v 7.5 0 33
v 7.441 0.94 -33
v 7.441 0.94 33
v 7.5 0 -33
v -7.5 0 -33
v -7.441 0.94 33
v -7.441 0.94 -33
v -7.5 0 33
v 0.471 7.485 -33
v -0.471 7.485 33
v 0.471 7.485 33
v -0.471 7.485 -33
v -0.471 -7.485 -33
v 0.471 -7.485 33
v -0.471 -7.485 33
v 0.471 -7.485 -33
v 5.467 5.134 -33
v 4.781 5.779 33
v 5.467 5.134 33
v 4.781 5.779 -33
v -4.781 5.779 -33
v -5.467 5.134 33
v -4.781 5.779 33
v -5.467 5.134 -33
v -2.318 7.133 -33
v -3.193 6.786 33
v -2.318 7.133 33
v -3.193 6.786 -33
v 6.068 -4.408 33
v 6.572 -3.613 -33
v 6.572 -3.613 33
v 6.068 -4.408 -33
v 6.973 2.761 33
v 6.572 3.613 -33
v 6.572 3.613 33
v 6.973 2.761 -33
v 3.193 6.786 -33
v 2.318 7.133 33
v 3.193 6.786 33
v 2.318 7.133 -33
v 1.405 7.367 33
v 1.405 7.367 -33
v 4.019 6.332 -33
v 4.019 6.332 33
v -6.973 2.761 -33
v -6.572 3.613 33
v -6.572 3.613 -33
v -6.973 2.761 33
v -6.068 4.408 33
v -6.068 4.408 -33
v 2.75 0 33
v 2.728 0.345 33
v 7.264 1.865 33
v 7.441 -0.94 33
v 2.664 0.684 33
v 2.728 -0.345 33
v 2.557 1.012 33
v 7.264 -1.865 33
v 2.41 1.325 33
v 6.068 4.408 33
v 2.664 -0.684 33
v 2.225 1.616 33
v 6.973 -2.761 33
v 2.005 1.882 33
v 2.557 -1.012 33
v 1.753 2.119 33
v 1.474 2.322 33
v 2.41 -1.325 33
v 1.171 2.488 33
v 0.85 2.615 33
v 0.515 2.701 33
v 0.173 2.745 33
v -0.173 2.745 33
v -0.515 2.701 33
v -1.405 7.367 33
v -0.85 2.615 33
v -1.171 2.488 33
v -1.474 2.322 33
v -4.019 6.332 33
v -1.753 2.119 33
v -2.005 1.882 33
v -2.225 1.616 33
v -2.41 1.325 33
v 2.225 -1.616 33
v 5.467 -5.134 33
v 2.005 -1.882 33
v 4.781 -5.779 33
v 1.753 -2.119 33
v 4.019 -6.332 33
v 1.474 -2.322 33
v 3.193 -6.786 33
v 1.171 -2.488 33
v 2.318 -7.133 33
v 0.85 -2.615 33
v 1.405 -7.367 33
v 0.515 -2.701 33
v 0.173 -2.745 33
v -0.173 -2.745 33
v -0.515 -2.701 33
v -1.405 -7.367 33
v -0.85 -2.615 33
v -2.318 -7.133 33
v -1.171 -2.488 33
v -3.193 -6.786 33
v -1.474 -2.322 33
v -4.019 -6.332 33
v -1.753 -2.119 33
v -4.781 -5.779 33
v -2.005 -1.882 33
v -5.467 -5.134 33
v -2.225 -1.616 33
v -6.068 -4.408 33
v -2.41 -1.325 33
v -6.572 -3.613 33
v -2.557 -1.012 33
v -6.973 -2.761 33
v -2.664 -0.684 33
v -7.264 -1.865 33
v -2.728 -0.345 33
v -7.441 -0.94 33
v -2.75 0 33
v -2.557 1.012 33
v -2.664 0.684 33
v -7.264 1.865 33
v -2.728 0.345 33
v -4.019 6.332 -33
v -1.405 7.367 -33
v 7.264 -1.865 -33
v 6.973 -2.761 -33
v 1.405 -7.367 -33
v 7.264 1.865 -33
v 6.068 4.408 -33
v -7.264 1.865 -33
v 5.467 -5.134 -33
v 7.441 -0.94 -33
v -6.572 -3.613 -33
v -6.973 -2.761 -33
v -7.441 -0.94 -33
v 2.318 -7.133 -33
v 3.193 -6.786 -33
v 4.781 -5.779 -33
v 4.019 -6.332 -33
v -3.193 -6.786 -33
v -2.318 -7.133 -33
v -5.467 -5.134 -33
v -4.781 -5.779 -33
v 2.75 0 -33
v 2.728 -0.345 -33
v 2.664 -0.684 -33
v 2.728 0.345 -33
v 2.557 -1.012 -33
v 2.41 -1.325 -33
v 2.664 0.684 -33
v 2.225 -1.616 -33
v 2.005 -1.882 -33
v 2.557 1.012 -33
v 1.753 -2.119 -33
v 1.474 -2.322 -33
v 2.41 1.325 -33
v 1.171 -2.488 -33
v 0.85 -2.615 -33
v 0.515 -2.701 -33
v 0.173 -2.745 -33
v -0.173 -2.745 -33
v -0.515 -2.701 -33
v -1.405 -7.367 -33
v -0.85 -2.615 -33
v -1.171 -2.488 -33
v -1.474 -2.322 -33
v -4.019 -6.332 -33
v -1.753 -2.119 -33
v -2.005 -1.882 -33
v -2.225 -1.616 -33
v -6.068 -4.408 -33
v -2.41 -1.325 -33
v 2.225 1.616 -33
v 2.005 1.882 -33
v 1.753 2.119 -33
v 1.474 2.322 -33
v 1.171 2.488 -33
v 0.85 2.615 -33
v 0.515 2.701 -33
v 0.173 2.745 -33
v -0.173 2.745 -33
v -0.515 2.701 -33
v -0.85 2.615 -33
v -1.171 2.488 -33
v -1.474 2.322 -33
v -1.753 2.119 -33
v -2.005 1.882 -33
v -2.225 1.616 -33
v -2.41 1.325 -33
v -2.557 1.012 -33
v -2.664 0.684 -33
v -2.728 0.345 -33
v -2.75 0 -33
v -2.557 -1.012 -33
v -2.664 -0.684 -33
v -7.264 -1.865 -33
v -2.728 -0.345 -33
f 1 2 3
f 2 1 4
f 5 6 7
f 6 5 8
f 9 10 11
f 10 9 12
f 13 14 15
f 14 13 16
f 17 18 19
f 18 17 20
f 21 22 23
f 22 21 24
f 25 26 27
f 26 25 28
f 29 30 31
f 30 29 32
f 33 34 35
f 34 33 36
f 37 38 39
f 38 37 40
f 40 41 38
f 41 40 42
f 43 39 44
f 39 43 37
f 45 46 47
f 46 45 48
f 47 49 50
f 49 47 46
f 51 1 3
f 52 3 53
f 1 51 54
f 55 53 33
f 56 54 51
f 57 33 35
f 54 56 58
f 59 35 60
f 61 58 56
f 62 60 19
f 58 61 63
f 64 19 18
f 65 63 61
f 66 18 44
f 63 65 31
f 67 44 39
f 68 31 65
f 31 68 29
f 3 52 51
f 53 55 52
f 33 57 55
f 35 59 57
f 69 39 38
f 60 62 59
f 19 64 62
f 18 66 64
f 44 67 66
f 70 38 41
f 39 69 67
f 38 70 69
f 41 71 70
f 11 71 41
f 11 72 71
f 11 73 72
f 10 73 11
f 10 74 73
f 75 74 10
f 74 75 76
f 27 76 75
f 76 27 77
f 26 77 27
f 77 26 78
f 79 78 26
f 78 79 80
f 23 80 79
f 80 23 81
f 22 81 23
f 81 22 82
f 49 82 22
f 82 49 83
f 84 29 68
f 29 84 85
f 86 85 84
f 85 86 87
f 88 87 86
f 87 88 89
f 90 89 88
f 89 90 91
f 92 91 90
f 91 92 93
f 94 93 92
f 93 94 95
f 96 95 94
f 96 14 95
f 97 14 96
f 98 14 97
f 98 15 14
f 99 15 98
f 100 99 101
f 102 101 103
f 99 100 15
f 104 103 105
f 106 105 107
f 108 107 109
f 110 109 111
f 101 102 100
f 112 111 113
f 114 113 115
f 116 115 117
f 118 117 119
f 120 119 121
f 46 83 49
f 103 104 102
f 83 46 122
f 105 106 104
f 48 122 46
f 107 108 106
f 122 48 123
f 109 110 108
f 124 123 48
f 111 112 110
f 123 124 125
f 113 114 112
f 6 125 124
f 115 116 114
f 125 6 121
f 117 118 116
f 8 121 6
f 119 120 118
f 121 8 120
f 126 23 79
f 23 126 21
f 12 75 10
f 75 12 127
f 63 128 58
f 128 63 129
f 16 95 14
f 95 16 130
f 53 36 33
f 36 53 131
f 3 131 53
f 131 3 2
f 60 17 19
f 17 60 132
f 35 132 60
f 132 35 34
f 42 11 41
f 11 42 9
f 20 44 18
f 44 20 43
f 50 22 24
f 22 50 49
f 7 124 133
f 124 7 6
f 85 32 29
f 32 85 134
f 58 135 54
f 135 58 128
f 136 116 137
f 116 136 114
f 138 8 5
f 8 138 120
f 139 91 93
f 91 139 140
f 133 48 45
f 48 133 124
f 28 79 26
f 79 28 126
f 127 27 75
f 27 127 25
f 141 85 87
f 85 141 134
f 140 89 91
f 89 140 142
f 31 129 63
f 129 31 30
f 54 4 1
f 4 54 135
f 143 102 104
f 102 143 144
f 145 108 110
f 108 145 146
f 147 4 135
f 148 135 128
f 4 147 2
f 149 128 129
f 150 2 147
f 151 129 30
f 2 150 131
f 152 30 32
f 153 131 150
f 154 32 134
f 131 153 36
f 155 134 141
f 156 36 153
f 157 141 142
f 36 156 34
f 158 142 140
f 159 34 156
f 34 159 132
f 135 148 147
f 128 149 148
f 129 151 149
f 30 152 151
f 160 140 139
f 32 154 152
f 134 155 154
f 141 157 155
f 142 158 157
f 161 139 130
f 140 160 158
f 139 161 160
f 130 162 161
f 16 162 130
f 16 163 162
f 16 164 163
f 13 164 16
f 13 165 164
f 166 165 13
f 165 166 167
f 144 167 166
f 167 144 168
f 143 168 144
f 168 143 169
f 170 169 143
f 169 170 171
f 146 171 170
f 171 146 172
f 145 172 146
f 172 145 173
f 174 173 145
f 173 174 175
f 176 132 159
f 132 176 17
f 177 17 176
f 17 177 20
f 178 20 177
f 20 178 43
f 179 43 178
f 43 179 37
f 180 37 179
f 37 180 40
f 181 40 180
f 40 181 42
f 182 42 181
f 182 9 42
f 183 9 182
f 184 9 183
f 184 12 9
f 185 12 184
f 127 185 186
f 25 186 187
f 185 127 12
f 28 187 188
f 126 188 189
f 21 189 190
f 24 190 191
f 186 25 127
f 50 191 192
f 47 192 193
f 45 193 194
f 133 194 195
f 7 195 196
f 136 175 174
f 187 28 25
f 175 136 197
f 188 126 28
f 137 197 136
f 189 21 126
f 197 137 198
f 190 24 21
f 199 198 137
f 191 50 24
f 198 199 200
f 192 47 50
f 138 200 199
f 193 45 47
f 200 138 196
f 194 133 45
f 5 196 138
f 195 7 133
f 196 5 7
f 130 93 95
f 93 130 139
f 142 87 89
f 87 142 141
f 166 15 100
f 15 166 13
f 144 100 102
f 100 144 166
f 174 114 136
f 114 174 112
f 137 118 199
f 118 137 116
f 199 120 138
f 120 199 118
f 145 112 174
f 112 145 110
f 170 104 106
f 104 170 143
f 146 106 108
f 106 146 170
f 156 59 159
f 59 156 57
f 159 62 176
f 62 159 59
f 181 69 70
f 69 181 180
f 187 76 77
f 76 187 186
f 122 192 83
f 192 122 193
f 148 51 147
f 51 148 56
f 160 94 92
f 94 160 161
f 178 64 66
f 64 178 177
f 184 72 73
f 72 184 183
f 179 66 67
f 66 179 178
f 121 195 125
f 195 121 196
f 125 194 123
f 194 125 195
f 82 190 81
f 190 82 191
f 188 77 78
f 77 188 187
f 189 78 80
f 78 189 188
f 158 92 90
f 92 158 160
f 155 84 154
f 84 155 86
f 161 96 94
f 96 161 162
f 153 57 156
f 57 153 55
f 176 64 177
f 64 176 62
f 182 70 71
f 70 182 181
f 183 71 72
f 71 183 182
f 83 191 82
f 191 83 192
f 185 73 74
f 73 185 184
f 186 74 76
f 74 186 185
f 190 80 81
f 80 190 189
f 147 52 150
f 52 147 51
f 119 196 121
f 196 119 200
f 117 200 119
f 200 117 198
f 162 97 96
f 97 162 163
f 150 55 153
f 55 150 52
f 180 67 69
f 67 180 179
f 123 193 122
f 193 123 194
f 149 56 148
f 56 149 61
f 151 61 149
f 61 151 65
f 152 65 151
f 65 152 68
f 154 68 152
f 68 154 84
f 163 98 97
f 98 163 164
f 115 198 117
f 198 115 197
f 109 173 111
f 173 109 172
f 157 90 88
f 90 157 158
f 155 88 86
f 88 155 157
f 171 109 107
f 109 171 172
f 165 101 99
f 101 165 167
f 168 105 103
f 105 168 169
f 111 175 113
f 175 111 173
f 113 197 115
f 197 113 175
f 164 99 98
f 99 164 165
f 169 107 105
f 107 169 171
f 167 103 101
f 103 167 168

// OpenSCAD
$fn = 50;


difference() {
	union() {
		translate(v = [0, 0, -33.0000000000]) {
			cylinder(h = 66, r = 7.5000000000);
		}
	}
	union() {
		translate(v = [0, 0, -100.0000000000]) {
			cylinder(h = 200, r = 2.7500000000);
		}
	}
}
